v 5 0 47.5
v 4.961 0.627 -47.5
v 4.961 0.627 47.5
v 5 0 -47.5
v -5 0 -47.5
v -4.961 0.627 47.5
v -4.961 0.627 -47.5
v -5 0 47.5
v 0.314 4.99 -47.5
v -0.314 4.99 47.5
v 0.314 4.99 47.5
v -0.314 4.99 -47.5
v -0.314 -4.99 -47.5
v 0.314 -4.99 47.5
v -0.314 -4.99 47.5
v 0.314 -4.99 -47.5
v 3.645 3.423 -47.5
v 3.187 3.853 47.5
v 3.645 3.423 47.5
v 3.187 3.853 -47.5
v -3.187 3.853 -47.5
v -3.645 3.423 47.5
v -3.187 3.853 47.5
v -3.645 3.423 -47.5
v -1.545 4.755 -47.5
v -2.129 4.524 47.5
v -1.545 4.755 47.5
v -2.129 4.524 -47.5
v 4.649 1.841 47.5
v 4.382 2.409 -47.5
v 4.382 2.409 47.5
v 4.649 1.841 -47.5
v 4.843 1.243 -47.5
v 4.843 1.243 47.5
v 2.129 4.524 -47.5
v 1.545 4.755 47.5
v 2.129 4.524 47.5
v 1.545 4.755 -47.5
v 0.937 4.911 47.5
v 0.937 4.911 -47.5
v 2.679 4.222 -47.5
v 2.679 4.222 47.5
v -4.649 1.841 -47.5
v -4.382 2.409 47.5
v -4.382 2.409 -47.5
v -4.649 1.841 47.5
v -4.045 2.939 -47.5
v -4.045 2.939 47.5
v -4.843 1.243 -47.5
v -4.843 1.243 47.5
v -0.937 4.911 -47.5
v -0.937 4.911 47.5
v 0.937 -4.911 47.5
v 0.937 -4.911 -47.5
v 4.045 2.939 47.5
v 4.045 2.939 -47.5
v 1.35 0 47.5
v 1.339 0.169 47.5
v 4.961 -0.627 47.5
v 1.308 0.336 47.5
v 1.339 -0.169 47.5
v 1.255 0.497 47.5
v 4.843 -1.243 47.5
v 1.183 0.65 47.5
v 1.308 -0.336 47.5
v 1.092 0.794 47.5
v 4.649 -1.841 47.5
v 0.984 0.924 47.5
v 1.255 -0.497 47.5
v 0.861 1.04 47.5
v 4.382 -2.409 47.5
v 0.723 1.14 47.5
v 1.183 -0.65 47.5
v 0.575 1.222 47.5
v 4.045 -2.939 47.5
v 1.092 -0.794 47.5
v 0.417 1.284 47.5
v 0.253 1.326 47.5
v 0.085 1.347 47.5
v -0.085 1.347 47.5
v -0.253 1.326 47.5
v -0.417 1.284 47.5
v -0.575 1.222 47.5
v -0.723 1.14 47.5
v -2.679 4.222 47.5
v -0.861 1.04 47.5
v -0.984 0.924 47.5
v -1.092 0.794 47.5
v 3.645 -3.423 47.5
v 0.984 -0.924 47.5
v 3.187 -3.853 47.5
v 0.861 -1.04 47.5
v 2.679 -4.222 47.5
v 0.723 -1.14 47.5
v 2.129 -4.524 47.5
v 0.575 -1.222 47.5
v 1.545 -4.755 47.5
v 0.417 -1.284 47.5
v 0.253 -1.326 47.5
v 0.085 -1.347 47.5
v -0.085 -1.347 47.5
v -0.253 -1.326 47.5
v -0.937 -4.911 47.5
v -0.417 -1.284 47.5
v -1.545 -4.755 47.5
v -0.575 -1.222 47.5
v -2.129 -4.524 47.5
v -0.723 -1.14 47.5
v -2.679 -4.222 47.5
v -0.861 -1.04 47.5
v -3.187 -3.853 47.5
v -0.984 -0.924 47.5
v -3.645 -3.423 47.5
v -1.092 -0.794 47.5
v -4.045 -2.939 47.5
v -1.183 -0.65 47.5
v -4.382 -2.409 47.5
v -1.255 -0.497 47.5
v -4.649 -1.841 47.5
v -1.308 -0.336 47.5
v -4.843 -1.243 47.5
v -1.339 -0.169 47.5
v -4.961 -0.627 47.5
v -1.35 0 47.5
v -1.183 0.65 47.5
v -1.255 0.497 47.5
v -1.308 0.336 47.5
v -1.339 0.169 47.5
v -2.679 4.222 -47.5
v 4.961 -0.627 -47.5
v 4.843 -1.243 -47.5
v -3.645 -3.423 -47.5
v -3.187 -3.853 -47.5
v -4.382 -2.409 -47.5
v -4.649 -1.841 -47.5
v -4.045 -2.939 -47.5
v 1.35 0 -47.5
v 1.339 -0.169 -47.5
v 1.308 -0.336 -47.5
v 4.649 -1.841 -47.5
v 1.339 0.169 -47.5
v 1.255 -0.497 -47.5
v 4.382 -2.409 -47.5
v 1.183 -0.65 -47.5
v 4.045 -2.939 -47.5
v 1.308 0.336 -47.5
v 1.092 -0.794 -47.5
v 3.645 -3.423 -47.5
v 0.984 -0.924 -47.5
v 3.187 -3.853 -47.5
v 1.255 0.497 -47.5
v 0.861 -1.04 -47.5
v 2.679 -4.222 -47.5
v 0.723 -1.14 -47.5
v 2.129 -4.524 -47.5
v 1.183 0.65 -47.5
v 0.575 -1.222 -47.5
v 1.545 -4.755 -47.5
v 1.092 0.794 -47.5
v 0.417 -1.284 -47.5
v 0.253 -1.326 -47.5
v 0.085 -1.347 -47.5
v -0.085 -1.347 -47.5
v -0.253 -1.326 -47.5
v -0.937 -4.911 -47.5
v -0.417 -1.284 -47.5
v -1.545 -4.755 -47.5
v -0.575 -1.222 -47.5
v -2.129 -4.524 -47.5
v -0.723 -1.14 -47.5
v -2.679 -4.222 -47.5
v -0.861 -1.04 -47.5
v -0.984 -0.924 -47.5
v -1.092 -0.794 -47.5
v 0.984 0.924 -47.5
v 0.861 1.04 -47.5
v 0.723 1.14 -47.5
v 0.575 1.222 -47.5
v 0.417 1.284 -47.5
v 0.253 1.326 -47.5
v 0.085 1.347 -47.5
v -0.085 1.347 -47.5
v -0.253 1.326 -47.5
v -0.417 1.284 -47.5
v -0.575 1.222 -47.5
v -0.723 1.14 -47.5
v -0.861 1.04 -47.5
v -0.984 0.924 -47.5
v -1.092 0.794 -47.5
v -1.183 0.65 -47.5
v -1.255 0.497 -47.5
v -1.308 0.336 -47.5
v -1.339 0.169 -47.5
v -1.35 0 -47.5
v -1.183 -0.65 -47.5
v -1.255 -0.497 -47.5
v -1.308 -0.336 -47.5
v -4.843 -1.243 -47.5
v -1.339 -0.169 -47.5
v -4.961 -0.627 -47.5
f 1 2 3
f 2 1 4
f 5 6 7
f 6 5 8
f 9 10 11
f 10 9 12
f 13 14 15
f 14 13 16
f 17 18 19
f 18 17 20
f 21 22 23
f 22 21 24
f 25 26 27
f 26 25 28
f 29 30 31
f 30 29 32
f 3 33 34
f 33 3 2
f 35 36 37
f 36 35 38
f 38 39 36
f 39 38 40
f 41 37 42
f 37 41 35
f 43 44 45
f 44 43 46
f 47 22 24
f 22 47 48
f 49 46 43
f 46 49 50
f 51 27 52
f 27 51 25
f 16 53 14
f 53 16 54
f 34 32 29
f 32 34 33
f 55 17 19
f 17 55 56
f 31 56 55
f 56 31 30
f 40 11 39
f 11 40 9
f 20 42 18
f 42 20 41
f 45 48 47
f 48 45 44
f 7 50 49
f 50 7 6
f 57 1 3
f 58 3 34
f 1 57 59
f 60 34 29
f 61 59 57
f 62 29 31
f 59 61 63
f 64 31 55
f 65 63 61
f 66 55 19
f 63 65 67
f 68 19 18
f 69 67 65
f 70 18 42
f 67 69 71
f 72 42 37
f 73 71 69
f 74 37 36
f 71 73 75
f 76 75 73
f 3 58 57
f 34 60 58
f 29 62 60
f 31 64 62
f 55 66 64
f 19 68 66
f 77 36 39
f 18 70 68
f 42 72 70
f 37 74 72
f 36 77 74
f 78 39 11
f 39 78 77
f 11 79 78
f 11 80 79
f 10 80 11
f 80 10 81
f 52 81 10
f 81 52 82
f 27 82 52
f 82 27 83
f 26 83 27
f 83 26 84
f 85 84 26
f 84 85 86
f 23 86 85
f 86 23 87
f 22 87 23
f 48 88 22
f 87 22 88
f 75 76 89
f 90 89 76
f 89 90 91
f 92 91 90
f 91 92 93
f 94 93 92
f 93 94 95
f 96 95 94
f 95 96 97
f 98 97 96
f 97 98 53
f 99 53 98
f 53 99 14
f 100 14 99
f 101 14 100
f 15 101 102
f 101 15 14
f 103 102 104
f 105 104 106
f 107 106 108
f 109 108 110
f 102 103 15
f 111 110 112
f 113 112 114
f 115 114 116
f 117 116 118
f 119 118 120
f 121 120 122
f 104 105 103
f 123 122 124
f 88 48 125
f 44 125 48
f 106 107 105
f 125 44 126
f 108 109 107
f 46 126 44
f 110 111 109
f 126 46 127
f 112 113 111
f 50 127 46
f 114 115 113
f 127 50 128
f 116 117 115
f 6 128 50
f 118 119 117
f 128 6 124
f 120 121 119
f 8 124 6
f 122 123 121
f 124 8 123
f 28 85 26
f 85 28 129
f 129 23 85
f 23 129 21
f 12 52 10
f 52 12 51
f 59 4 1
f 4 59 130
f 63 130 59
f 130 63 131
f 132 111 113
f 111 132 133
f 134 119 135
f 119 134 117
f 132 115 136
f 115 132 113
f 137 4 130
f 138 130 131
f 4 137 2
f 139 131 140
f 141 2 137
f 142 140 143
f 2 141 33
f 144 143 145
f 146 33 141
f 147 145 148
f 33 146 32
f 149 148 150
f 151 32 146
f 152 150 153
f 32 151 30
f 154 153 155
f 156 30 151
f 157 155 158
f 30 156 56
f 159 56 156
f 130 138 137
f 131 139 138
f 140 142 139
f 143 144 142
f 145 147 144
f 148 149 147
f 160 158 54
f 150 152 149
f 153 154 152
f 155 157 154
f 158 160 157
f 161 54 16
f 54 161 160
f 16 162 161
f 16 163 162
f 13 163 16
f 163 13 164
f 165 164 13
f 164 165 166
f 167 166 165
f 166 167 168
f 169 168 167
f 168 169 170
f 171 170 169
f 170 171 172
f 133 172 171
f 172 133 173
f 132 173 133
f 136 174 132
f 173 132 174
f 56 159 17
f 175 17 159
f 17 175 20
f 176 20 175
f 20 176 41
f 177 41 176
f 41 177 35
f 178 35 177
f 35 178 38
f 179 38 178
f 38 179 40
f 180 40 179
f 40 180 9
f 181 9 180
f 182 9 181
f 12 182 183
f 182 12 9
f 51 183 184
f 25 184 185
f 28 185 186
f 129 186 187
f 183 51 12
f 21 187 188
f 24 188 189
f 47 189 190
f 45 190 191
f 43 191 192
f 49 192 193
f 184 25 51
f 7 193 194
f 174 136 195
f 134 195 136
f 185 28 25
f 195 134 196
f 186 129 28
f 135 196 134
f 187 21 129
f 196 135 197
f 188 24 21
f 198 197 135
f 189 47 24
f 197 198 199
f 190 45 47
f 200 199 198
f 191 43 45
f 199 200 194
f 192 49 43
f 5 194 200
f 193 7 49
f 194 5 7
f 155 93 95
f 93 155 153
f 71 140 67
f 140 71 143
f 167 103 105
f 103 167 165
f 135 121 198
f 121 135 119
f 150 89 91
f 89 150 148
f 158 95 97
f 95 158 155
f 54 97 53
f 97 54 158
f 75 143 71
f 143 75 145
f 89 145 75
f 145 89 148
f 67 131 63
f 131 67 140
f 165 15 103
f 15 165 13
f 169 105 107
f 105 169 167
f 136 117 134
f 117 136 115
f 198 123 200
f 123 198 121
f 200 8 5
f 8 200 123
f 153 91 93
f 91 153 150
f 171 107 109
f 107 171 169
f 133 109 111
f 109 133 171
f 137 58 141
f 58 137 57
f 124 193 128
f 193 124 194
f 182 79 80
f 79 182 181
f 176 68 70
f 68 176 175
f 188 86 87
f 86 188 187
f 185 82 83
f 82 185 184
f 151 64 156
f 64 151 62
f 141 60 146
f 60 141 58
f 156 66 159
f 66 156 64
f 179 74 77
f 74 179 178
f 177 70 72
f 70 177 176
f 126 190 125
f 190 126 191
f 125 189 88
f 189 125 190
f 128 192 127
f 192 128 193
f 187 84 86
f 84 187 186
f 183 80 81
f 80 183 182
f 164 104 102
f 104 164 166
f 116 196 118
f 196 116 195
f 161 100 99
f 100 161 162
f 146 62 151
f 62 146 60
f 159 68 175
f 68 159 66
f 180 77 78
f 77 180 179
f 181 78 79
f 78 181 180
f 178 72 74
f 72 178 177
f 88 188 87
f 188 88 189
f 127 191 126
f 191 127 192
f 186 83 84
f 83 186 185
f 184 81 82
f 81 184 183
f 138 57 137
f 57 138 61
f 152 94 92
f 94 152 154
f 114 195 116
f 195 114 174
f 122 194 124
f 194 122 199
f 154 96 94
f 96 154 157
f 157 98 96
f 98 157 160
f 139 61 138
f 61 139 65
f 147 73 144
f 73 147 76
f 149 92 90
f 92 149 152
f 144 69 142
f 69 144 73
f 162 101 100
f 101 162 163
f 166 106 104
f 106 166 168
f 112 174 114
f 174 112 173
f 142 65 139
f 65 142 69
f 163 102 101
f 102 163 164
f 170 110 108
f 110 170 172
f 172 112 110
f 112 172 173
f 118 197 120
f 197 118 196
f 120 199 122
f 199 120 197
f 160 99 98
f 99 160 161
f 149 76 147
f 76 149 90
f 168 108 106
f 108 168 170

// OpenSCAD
$fn = 50;


difference() {
	union() {
		translate(v = [0, 0, -47.5000000000]) {
			cylinder(h = 95, r = 5.0000000000);
		}
	}
	union() {
		translate(v = [0, 0, -100.0000000000]) {
			cylinder(h = 200, r = 1.3500000000);
		}
	}
}
